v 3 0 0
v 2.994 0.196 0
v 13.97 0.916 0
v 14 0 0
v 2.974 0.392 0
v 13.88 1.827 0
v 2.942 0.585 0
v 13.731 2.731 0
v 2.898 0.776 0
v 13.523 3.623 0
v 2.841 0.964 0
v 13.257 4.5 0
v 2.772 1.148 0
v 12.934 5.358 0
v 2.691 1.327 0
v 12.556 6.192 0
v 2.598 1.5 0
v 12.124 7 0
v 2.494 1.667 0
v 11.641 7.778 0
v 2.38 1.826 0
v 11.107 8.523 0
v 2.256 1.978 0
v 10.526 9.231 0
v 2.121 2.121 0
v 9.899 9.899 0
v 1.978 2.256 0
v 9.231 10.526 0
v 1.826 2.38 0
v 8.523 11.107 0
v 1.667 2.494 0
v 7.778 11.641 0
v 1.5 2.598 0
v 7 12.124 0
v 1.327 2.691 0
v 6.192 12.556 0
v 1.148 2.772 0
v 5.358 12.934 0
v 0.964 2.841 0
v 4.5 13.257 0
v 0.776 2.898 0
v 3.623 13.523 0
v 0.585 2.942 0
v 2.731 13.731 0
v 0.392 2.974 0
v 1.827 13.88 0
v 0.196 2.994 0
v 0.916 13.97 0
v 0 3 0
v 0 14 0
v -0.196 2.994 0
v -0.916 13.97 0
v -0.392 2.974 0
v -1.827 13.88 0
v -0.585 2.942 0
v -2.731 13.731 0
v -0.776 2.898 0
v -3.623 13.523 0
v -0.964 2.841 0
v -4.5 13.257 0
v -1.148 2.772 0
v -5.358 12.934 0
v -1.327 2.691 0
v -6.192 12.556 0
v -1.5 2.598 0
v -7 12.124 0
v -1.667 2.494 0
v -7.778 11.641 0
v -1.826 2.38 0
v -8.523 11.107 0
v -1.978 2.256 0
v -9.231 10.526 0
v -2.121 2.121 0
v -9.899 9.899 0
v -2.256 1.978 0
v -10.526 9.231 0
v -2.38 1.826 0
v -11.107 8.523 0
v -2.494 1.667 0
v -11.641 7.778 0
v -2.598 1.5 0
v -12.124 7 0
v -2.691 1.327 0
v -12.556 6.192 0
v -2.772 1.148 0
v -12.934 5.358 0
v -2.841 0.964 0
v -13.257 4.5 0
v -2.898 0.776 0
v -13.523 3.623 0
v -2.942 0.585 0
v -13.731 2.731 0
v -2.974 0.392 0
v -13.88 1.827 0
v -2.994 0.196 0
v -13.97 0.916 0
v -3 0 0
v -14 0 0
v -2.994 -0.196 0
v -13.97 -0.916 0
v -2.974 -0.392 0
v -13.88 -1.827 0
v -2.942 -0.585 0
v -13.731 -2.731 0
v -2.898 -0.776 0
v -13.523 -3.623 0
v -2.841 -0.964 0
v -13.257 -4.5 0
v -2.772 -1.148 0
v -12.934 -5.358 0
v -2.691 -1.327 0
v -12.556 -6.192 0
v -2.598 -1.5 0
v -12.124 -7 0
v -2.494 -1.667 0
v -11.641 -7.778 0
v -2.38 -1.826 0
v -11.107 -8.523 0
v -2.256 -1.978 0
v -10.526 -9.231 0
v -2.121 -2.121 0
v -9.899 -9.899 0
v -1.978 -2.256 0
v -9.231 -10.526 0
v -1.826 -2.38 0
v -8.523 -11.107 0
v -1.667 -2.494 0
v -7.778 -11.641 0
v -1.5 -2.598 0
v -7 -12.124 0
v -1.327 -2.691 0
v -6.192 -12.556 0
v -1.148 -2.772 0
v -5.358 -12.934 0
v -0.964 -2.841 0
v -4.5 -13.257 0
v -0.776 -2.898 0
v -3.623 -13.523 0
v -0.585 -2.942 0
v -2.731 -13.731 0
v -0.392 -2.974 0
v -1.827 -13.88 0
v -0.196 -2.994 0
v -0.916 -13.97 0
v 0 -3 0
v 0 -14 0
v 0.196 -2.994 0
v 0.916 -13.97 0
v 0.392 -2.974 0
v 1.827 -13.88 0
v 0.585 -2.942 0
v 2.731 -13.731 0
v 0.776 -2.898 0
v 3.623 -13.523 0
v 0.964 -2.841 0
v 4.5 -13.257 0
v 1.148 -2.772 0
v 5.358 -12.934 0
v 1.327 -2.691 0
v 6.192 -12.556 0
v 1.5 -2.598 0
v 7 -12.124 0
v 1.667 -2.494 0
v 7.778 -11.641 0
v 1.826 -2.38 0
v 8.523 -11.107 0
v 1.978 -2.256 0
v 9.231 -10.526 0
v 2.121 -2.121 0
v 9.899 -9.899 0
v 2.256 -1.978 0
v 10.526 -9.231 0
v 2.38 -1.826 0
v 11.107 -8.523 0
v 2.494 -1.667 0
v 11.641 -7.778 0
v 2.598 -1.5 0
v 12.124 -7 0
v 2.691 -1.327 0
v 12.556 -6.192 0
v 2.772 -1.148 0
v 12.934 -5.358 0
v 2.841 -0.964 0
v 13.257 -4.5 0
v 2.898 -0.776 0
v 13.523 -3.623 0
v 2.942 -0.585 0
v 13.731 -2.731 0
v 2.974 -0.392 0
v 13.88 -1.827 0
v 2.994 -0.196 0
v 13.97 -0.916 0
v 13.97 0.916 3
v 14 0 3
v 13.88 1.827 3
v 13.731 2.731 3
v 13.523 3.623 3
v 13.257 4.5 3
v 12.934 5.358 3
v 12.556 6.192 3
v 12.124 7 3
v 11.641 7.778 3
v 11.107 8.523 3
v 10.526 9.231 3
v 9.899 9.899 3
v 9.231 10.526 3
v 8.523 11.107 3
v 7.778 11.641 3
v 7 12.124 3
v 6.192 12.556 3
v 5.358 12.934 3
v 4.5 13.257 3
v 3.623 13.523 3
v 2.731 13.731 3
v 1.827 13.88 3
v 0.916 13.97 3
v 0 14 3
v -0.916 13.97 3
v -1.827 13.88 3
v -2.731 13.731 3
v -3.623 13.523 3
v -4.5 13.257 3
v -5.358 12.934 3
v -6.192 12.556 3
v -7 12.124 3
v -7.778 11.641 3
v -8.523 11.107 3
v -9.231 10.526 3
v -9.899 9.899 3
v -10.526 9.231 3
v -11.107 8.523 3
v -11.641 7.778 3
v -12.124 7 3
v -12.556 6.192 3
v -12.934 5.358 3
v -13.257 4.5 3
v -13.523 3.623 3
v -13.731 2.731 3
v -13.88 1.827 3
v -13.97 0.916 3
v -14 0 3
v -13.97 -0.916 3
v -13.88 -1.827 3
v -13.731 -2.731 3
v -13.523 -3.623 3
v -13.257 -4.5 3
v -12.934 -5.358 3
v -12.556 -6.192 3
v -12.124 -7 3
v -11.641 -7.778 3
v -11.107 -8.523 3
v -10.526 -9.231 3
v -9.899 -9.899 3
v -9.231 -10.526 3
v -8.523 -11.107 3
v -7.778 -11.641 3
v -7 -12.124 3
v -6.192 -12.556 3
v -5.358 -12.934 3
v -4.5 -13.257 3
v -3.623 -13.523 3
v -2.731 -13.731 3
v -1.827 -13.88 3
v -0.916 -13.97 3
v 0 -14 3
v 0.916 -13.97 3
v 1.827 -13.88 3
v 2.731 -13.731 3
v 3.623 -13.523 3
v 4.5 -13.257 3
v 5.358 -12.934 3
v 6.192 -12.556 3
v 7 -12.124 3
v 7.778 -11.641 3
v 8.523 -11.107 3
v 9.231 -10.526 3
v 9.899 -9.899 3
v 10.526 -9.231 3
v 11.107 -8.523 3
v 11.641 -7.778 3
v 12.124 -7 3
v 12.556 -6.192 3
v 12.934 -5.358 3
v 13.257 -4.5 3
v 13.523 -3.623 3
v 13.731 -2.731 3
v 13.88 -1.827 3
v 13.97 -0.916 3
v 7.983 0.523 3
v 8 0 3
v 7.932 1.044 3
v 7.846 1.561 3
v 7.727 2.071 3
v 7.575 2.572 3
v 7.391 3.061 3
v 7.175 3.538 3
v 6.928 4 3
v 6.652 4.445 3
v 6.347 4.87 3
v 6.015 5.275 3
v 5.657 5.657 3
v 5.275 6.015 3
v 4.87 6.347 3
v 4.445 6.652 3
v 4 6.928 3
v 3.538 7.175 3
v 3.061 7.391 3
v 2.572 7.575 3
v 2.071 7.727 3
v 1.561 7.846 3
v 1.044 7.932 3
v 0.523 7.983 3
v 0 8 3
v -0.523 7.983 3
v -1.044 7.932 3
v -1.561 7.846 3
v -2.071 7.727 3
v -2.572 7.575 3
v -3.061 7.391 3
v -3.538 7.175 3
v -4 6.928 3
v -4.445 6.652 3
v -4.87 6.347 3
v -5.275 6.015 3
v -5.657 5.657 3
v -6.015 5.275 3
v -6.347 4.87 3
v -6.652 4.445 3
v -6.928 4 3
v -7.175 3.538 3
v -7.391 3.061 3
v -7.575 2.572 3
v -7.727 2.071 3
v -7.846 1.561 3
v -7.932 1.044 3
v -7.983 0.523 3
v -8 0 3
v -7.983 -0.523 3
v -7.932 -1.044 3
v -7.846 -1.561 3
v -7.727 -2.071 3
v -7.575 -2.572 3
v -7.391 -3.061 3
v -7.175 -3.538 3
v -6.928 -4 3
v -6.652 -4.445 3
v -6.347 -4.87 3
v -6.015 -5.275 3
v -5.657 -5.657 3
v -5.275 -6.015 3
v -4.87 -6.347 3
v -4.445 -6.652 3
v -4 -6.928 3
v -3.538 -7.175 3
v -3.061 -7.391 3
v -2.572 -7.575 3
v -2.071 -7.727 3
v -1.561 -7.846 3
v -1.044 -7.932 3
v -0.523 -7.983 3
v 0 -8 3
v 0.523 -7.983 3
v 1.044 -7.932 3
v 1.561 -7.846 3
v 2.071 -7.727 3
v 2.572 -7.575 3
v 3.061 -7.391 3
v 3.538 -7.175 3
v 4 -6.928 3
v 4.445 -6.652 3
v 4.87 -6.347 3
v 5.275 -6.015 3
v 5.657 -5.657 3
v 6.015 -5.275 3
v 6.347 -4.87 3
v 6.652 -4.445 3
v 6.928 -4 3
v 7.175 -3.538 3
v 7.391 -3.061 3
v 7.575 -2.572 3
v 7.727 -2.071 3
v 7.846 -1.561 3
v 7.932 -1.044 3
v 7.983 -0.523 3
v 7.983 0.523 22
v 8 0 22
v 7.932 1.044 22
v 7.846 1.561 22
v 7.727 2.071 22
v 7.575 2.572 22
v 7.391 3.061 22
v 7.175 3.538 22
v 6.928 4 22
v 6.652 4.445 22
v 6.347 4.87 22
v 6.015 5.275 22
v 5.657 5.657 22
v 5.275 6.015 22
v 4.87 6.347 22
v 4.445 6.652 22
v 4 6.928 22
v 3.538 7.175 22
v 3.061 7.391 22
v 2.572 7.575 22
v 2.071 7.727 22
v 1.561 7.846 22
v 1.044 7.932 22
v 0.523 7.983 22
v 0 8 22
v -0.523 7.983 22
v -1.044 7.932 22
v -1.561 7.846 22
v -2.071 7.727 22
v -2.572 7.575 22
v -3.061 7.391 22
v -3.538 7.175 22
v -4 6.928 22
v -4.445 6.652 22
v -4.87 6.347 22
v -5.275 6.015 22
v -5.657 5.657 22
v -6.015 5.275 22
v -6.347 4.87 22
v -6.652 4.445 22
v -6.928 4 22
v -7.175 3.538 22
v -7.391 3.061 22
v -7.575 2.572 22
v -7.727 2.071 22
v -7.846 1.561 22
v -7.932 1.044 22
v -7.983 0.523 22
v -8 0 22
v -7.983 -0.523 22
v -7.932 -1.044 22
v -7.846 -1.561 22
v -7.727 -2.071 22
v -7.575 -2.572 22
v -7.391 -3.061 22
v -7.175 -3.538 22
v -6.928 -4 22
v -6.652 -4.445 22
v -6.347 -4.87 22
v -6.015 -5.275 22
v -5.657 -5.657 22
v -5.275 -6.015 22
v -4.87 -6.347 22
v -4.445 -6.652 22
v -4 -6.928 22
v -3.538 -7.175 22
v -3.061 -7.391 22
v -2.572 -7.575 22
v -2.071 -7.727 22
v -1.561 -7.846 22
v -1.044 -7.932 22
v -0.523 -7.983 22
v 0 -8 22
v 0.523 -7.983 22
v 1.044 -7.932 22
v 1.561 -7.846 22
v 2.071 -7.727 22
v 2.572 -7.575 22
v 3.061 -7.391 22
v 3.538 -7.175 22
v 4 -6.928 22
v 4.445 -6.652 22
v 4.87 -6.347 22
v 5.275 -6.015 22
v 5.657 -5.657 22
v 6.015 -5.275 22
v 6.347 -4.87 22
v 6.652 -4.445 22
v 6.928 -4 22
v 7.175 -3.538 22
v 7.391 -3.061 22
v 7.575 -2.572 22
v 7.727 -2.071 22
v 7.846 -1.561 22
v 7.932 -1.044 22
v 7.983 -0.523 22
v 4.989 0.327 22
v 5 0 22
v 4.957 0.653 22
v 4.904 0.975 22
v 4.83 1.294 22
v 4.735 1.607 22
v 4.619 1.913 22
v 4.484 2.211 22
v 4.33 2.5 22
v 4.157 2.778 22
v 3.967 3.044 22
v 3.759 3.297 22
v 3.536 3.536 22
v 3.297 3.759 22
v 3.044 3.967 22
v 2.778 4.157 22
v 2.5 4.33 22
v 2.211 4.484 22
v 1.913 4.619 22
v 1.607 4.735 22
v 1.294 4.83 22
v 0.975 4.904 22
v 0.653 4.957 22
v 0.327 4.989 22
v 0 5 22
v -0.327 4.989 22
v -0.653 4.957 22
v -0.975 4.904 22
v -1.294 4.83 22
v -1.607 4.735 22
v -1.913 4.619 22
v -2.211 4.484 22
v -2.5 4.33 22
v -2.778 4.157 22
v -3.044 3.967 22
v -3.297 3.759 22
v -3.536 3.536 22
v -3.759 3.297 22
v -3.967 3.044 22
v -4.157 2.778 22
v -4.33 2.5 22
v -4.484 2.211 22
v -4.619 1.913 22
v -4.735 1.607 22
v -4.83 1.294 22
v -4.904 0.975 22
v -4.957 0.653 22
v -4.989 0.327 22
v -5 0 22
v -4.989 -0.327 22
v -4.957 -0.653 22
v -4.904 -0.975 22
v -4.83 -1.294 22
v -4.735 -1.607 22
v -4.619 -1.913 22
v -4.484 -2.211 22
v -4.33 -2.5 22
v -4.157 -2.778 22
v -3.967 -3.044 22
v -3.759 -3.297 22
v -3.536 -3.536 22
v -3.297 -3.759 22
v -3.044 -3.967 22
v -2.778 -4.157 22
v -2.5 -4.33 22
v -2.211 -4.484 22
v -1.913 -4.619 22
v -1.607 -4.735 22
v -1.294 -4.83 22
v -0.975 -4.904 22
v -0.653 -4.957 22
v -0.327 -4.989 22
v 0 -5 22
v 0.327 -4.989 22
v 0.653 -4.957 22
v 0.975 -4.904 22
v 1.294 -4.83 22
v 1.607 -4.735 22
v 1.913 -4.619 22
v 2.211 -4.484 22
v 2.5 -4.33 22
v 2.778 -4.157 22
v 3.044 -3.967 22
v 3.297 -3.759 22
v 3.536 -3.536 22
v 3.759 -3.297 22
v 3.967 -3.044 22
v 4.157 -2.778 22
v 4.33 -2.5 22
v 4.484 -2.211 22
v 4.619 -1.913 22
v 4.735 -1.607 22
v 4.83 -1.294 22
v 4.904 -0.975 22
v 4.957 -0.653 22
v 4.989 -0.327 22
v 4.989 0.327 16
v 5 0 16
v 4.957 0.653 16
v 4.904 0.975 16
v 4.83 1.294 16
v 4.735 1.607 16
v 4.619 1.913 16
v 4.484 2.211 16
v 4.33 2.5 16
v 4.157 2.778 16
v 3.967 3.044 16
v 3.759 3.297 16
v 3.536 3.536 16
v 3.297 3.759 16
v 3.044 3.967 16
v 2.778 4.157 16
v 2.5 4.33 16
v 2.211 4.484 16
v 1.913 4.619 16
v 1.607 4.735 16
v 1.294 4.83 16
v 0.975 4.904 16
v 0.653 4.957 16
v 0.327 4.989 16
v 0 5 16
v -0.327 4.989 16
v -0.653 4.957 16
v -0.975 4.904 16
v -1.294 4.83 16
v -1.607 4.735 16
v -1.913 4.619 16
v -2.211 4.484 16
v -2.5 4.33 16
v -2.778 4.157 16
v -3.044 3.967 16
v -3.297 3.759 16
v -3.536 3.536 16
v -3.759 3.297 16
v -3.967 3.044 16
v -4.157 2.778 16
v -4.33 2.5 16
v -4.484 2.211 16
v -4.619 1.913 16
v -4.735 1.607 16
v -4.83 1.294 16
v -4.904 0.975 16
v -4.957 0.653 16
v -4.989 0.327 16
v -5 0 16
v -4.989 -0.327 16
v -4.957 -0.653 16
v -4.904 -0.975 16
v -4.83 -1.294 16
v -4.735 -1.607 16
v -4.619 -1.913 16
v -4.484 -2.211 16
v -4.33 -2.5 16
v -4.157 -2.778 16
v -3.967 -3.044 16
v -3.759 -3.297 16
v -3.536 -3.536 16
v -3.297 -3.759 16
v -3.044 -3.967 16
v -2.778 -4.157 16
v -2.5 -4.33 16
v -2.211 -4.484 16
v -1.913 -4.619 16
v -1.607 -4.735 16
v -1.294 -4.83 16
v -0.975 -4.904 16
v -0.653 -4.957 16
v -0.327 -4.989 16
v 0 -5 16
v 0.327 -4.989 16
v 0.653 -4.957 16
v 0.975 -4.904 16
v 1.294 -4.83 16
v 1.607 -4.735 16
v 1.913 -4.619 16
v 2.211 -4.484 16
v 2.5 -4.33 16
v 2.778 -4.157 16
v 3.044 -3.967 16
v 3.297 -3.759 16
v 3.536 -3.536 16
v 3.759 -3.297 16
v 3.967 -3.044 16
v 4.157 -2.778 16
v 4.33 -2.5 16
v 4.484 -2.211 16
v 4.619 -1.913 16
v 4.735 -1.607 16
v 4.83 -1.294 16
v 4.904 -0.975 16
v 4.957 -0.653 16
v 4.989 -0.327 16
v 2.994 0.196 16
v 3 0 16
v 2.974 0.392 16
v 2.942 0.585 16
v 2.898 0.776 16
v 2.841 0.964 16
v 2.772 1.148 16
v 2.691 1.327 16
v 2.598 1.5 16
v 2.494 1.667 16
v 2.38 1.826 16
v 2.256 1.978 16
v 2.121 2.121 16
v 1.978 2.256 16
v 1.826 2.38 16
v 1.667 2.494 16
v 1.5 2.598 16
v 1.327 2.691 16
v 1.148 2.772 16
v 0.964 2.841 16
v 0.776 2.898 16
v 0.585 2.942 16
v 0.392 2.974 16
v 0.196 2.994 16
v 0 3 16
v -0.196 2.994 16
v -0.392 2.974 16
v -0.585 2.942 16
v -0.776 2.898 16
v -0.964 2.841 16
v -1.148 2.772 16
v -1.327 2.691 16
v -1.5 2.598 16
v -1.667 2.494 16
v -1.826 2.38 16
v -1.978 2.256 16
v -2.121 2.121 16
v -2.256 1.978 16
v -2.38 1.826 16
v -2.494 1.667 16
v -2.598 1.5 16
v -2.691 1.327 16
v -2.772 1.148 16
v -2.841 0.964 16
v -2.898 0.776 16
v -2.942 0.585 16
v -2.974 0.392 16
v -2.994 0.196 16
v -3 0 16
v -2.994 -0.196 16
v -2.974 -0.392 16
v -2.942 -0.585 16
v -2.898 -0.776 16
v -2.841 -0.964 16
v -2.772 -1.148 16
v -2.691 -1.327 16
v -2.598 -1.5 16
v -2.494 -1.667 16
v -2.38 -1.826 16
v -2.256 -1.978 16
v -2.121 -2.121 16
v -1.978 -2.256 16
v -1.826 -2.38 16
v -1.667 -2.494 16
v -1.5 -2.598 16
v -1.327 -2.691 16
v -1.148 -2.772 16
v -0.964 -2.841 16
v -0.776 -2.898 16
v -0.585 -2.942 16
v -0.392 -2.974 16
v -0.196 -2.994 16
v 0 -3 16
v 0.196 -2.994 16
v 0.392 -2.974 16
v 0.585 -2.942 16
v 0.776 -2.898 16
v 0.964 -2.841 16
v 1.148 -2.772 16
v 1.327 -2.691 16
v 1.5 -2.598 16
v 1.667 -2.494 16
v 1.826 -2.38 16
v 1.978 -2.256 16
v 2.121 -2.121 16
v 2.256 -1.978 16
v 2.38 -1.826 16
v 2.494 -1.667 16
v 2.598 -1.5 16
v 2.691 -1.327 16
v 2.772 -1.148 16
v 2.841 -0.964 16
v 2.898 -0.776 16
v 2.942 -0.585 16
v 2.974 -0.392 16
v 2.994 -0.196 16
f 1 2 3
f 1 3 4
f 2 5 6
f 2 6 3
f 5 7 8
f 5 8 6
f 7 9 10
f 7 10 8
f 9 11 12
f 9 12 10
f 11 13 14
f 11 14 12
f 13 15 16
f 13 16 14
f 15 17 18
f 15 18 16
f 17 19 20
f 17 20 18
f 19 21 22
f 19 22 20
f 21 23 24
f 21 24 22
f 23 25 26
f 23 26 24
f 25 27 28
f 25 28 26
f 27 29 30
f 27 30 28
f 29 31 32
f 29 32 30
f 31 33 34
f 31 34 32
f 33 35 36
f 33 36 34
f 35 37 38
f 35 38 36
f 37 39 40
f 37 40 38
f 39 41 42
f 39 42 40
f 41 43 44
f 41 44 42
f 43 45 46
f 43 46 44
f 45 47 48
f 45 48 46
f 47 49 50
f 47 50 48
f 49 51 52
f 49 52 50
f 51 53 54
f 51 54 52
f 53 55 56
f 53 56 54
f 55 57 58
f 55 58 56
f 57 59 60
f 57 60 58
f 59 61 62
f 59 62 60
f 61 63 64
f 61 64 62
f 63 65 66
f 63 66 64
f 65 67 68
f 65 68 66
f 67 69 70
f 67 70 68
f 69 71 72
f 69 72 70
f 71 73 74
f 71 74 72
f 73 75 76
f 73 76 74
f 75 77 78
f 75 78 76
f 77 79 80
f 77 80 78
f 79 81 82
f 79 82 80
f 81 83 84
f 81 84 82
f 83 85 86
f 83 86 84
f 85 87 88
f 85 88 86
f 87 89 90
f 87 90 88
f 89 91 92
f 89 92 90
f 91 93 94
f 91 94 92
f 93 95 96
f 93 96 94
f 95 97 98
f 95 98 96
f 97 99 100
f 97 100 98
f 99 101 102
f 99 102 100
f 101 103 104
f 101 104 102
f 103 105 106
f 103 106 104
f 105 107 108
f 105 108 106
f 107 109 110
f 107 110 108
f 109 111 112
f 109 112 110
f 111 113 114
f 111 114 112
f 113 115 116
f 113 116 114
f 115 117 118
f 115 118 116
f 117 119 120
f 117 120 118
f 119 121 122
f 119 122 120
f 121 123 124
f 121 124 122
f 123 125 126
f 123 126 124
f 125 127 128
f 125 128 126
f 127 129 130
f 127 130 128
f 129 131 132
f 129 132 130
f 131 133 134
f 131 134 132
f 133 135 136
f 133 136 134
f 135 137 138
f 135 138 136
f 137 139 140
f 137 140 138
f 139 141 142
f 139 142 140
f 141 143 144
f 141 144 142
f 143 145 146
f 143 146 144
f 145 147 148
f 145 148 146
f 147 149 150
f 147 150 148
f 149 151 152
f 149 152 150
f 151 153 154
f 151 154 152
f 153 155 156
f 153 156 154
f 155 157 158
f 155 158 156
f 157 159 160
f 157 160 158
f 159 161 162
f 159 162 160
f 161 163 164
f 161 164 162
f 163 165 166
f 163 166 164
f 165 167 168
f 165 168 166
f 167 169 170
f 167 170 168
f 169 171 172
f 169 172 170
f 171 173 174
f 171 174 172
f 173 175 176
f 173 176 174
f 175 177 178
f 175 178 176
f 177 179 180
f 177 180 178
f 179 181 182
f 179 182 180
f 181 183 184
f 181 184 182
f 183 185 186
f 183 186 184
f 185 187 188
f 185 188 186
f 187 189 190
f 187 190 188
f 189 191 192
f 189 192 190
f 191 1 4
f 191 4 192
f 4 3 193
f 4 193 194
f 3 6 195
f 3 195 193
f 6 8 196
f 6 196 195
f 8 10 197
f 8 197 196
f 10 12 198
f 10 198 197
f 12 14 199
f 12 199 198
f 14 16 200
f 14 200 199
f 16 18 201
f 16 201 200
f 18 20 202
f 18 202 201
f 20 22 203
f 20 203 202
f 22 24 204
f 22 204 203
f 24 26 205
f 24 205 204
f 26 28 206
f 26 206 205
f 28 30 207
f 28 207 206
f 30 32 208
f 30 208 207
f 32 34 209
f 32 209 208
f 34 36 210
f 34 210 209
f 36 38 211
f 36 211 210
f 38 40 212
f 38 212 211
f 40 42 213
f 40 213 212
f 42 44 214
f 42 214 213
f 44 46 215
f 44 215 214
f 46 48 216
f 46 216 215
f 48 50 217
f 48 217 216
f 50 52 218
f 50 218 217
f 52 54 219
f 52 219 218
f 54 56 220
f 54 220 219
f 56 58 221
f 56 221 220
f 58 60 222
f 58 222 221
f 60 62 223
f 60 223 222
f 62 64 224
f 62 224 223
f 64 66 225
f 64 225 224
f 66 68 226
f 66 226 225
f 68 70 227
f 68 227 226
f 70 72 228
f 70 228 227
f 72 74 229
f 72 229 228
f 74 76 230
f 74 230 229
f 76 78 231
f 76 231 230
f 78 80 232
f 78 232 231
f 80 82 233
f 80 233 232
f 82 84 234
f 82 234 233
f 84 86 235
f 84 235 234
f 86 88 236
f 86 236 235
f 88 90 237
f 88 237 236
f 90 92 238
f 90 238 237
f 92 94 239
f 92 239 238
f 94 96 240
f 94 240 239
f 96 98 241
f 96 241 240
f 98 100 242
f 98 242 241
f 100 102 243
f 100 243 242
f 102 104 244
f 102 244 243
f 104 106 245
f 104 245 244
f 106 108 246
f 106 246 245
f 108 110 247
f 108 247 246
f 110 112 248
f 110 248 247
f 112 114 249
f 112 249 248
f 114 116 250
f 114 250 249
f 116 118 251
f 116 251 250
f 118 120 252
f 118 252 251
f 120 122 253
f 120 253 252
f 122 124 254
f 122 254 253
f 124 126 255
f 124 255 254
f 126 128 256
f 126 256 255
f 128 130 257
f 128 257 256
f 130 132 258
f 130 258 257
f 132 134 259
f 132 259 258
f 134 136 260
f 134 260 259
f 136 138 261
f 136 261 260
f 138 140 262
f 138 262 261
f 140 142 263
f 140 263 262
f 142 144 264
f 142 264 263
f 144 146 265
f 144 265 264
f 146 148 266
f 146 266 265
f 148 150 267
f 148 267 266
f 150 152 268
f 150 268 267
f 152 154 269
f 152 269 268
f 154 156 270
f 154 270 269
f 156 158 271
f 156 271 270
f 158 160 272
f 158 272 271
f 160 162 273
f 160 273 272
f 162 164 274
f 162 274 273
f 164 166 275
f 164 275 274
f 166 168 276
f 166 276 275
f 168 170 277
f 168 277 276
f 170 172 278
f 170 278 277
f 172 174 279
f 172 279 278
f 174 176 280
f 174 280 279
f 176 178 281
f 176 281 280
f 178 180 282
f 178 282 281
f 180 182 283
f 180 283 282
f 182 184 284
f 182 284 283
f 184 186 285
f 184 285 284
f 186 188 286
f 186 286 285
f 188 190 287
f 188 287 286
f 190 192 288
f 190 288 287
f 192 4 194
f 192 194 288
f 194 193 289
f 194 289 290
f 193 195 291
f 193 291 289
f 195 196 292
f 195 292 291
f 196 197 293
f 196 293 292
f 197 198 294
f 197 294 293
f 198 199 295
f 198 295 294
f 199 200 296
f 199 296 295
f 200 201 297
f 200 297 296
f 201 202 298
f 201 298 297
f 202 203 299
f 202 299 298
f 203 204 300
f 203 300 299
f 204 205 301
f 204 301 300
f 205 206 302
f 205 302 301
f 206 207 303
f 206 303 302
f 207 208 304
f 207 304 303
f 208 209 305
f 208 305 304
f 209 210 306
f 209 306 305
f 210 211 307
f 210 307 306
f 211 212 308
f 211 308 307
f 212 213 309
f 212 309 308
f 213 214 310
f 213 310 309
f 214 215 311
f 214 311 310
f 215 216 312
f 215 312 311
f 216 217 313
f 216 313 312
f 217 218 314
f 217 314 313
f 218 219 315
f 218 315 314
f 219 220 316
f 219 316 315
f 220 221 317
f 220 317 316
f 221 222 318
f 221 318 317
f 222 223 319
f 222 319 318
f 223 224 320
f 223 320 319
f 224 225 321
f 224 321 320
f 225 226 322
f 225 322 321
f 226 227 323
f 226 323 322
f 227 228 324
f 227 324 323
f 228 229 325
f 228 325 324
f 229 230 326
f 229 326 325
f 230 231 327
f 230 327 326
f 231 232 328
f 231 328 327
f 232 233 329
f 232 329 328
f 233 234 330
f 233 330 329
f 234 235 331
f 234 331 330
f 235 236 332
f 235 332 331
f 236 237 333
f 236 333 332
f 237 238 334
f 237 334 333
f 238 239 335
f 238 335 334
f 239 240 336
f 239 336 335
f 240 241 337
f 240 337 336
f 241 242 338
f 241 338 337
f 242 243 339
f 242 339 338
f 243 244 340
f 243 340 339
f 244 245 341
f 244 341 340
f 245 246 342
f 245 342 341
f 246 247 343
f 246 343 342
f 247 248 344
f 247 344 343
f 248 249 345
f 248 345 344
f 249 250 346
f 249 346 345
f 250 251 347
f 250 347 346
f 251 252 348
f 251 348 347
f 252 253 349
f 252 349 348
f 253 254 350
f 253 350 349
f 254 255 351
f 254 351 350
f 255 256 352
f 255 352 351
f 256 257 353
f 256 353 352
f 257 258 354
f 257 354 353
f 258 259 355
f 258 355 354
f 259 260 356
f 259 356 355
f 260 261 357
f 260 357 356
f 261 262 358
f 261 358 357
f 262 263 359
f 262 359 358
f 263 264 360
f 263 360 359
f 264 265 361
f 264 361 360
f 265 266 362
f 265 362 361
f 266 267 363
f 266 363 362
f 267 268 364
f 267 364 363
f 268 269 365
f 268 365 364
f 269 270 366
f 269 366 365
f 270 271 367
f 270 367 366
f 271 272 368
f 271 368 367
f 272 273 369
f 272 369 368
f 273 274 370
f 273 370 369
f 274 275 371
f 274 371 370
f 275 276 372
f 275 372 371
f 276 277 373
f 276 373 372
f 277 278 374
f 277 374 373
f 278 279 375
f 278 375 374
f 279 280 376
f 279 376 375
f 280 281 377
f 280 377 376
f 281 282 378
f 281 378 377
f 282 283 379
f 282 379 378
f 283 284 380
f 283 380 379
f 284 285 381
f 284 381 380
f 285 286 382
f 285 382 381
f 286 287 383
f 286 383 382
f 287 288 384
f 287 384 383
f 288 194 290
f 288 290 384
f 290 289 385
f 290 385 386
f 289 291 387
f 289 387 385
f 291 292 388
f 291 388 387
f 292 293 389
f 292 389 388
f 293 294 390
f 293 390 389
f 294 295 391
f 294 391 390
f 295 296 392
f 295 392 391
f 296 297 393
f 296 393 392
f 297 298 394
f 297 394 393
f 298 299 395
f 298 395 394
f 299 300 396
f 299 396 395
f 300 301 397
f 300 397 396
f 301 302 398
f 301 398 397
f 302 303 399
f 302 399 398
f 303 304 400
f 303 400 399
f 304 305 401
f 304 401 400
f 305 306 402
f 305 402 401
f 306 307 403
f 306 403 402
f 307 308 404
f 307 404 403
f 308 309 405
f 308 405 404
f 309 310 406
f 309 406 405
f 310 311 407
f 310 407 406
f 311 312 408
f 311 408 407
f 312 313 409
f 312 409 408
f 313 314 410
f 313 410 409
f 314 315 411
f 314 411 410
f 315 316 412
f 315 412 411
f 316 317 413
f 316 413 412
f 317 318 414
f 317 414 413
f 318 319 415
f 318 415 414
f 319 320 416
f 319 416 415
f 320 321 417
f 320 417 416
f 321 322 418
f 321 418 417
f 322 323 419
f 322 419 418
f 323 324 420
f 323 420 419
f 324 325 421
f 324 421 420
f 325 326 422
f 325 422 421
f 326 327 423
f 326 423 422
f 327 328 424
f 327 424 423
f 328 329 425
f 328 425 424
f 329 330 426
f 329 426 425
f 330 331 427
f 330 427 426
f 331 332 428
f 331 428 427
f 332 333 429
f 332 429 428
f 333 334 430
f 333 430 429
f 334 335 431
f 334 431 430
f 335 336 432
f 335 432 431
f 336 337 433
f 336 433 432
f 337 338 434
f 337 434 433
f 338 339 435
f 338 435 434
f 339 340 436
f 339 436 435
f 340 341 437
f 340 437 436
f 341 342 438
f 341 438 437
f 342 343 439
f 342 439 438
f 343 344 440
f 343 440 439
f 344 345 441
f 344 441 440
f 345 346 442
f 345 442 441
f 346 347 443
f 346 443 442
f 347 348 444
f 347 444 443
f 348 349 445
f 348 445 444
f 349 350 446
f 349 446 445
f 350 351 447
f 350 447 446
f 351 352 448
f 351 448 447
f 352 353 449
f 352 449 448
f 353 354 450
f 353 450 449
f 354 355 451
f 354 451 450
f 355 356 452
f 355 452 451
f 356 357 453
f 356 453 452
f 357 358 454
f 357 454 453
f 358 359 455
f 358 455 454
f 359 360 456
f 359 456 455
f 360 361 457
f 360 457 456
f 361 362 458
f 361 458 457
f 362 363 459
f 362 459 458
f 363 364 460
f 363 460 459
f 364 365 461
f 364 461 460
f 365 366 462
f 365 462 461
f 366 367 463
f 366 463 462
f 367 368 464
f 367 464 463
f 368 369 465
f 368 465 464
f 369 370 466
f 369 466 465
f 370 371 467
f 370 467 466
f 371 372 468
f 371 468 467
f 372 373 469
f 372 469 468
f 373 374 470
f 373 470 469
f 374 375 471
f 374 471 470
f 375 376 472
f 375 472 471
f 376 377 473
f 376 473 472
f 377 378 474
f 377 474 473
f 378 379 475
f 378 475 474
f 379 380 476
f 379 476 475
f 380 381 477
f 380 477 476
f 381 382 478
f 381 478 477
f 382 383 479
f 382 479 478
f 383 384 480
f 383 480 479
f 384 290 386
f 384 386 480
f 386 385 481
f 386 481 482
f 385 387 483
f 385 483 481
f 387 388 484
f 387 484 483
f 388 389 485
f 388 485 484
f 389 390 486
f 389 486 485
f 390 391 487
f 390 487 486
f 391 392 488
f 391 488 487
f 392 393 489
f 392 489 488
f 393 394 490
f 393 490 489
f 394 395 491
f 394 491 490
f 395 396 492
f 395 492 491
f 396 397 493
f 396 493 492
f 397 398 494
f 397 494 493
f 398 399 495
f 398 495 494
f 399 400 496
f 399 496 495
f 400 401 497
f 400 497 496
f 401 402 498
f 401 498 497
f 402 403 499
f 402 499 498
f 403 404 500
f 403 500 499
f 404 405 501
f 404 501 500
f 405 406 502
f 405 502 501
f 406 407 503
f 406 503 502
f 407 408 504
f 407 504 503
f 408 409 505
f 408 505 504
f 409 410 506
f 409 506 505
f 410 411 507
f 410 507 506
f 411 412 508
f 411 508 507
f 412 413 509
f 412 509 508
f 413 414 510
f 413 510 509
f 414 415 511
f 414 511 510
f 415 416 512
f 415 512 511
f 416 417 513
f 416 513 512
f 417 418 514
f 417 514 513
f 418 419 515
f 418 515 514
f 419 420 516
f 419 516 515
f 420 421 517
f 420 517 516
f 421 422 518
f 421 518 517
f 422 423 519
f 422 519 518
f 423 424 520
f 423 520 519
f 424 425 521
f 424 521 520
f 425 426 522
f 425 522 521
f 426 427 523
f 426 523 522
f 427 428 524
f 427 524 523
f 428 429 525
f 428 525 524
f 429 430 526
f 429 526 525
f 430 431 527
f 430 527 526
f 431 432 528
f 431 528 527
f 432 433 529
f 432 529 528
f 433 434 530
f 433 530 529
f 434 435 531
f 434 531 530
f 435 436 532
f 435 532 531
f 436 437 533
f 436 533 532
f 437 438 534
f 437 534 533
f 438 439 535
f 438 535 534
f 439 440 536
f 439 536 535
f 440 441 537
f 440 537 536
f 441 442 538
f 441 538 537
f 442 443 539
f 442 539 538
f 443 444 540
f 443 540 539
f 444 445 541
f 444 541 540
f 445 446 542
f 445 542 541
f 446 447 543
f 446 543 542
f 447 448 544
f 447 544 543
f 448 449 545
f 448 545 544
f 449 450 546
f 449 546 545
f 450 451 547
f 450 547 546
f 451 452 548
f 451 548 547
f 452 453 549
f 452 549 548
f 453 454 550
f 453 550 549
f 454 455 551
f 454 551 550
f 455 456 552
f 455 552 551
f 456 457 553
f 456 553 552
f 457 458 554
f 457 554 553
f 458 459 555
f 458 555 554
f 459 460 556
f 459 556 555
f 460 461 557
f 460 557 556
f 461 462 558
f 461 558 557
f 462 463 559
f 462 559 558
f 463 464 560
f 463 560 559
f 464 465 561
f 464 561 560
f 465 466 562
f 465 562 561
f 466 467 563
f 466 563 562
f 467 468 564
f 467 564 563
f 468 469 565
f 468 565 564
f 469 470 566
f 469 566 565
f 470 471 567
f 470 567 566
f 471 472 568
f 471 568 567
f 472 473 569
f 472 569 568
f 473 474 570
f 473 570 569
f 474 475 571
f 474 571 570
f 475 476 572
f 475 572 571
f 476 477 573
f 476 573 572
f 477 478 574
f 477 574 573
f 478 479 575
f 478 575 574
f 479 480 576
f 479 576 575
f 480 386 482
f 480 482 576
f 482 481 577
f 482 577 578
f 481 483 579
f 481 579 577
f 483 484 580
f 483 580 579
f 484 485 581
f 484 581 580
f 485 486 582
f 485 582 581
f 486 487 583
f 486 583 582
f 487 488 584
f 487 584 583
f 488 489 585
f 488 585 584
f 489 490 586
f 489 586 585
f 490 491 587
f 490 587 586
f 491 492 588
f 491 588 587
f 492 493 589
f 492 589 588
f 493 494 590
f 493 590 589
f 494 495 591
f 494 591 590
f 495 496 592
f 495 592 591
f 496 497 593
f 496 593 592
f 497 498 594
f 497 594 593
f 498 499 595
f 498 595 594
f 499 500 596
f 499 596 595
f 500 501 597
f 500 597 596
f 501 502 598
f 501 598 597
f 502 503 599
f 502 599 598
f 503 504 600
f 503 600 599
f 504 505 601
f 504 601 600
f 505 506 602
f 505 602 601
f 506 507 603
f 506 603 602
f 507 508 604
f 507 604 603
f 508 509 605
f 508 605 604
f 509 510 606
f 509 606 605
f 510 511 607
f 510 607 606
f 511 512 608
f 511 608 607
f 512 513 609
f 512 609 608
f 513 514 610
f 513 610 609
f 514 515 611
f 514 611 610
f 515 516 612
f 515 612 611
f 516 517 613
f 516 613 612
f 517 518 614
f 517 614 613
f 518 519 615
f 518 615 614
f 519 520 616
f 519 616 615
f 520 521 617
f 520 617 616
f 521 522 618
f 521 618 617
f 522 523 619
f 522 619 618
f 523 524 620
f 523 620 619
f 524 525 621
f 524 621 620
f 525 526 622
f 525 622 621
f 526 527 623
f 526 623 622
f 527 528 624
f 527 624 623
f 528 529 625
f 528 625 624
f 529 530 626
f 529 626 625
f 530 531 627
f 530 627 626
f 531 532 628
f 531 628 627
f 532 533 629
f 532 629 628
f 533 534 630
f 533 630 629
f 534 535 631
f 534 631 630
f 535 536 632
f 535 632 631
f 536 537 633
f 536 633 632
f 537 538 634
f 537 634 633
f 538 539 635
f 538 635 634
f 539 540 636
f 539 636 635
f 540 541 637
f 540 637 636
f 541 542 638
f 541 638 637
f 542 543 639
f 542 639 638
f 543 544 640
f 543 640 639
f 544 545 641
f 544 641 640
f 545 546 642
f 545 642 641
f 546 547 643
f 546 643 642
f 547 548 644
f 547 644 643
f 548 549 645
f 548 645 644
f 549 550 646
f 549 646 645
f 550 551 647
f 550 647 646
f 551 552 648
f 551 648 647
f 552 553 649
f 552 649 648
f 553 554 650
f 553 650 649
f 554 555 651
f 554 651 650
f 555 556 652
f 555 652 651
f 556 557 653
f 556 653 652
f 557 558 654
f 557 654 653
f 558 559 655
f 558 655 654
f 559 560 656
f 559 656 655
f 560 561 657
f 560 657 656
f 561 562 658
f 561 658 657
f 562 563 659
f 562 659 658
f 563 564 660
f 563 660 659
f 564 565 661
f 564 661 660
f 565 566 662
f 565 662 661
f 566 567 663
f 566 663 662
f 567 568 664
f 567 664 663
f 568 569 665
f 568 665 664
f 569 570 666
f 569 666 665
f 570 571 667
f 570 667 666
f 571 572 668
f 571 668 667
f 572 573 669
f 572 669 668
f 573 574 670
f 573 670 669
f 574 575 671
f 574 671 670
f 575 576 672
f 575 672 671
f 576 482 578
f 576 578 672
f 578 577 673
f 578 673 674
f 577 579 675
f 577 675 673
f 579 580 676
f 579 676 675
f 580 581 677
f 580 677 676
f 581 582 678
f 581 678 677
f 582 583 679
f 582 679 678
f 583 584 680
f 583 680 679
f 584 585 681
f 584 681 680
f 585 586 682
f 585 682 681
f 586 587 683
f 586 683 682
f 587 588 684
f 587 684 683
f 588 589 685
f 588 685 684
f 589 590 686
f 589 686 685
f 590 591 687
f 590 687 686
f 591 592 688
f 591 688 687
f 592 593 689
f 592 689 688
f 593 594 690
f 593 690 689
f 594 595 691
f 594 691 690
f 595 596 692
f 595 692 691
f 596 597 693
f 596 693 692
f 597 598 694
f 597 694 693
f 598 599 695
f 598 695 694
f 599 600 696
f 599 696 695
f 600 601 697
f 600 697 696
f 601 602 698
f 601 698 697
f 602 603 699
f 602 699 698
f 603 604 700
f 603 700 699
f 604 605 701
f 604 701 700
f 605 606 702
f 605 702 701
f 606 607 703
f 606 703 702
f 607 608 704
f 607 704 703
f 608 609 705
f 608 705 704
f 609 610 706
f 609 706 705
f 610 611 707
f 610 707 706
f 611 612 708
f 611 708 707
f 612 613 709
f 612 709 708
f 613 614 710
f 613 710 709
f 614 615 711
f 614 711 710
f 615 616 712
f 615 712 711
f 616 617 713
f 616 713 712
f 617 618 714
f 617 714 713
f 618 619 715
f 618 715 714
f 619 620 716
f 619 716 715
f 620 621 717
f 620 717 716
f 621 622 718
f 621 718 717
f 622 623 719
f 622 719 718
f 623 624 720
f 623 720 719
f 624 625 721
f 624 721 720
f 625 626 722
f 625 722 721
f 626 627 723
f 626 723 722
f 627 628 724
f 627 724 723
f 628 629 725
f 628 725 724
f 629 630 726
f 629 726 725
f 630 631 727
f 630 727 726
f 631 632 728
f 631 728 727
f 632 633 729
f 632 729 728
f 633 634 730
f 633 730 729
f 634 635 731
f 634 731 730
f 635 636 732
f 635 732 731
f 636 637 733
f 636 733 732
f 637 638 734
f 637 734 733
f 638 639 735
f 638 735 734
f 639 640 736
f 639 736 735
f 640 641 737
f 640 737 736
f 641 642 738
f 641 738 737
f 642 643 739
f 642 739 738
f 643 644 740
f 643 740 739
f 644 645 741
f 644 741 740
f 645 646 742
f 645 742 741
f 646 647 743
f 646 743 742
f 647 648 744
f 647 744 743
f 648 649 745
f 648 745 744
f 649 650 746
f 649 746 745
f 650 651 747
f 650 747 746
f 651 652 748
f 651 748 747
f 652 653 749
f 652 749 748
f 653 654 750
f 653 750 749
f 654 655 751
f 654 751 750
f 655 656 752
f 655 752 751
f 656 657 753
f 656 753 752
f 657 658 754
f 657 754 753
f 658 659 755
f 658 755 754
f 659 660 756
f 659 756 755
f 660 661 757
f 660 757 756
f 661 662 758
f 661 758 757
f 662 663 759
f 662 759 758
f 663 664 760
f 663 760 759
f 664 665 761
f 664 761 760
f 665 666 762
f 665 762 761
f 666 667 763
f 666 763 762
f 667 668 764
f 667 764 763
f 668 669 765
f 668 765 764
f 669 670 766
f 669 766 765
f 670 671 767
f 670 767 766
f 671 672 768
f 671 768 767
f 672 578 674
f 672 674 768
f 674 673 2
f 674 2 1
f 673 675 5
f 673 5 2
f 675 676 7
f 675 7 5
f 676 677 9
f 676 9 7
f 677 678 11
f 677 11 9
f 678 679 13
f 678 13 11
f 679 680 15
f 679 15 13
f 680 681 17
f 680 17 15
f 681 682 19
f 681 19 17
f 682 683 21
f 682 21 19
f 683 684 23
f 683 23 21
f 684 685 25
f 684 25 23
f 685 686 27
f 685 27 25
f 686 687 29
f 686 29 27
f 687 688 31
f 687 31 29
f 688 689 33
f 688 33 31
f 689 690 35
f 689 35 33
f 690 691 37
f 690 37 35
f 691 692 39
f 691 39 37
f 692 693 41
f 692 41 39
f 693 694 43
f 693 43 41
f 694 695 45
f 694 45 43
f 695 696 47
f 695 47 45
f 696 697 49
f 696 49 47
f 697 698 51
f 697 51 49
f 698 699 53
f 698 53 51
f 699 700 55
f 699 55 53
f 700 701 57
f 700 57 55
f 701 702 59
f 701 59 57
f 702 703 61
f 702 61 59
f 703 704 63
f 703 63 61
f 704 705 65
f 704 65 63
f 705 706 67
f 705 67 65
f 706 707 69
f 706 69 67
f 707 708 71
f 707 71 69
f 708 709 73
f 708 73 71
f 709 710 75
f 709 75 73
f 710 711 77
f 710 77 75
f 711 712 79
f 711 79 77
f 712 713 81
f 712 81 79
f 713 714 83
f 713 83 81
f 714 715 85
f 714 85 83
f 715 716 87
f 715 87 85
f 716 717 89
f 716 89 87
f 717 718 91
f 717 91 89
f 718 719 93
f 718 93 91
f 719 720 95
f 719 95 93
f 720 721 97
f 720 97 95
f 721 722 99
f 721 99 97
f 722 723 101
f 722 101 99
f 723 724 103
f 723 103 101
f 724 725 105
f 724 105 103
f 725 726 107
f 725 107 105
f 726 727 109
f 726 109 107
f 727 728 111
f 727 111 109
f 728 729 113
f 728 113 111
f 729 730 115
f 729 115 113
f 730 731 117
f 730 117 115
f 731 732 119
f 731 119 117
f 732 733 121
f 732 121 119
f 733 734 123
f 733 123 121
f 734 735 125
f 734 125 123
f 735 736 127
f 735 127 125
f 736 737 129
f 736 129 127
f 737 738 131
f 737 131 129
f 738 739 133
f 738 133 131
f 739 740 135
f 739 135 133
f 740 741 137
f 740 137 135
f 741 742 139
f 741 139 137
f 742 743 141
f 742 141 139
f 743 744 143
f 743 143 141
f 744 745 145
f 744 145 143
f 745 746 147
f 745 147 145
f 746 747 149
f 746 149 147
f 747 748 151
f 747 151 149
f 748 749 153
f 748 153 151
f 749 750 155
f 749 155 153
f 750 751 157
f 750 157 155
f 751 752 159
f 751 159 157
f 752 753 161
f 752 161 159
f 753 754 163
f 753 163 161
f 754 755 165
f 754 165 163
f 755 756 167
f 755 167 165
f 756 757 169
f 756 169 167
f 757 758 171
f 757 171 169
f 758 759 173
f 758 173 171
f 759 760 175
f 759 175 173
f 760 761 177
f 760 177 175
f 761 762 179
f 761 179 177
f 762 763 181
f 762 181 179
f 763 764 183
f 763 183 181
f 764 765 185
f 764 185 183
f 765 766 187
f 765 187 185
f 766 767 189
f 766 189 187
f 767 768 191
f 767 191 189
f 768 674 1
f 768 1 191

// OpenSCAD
// Original MechIntel educational model. CC0-1.0. Units: mm.
// Not a standardized or load-rated component.
$fn=96;
// Section points: [radius, height], mm. Edit to change the profile.
section=[[3, 0], [14, 0], [14, 3], [8, 3], [8, 22], [5, 22], [5, 16], [3, 16]];
rotate_extrude($fn=96) polygon(points=section);
